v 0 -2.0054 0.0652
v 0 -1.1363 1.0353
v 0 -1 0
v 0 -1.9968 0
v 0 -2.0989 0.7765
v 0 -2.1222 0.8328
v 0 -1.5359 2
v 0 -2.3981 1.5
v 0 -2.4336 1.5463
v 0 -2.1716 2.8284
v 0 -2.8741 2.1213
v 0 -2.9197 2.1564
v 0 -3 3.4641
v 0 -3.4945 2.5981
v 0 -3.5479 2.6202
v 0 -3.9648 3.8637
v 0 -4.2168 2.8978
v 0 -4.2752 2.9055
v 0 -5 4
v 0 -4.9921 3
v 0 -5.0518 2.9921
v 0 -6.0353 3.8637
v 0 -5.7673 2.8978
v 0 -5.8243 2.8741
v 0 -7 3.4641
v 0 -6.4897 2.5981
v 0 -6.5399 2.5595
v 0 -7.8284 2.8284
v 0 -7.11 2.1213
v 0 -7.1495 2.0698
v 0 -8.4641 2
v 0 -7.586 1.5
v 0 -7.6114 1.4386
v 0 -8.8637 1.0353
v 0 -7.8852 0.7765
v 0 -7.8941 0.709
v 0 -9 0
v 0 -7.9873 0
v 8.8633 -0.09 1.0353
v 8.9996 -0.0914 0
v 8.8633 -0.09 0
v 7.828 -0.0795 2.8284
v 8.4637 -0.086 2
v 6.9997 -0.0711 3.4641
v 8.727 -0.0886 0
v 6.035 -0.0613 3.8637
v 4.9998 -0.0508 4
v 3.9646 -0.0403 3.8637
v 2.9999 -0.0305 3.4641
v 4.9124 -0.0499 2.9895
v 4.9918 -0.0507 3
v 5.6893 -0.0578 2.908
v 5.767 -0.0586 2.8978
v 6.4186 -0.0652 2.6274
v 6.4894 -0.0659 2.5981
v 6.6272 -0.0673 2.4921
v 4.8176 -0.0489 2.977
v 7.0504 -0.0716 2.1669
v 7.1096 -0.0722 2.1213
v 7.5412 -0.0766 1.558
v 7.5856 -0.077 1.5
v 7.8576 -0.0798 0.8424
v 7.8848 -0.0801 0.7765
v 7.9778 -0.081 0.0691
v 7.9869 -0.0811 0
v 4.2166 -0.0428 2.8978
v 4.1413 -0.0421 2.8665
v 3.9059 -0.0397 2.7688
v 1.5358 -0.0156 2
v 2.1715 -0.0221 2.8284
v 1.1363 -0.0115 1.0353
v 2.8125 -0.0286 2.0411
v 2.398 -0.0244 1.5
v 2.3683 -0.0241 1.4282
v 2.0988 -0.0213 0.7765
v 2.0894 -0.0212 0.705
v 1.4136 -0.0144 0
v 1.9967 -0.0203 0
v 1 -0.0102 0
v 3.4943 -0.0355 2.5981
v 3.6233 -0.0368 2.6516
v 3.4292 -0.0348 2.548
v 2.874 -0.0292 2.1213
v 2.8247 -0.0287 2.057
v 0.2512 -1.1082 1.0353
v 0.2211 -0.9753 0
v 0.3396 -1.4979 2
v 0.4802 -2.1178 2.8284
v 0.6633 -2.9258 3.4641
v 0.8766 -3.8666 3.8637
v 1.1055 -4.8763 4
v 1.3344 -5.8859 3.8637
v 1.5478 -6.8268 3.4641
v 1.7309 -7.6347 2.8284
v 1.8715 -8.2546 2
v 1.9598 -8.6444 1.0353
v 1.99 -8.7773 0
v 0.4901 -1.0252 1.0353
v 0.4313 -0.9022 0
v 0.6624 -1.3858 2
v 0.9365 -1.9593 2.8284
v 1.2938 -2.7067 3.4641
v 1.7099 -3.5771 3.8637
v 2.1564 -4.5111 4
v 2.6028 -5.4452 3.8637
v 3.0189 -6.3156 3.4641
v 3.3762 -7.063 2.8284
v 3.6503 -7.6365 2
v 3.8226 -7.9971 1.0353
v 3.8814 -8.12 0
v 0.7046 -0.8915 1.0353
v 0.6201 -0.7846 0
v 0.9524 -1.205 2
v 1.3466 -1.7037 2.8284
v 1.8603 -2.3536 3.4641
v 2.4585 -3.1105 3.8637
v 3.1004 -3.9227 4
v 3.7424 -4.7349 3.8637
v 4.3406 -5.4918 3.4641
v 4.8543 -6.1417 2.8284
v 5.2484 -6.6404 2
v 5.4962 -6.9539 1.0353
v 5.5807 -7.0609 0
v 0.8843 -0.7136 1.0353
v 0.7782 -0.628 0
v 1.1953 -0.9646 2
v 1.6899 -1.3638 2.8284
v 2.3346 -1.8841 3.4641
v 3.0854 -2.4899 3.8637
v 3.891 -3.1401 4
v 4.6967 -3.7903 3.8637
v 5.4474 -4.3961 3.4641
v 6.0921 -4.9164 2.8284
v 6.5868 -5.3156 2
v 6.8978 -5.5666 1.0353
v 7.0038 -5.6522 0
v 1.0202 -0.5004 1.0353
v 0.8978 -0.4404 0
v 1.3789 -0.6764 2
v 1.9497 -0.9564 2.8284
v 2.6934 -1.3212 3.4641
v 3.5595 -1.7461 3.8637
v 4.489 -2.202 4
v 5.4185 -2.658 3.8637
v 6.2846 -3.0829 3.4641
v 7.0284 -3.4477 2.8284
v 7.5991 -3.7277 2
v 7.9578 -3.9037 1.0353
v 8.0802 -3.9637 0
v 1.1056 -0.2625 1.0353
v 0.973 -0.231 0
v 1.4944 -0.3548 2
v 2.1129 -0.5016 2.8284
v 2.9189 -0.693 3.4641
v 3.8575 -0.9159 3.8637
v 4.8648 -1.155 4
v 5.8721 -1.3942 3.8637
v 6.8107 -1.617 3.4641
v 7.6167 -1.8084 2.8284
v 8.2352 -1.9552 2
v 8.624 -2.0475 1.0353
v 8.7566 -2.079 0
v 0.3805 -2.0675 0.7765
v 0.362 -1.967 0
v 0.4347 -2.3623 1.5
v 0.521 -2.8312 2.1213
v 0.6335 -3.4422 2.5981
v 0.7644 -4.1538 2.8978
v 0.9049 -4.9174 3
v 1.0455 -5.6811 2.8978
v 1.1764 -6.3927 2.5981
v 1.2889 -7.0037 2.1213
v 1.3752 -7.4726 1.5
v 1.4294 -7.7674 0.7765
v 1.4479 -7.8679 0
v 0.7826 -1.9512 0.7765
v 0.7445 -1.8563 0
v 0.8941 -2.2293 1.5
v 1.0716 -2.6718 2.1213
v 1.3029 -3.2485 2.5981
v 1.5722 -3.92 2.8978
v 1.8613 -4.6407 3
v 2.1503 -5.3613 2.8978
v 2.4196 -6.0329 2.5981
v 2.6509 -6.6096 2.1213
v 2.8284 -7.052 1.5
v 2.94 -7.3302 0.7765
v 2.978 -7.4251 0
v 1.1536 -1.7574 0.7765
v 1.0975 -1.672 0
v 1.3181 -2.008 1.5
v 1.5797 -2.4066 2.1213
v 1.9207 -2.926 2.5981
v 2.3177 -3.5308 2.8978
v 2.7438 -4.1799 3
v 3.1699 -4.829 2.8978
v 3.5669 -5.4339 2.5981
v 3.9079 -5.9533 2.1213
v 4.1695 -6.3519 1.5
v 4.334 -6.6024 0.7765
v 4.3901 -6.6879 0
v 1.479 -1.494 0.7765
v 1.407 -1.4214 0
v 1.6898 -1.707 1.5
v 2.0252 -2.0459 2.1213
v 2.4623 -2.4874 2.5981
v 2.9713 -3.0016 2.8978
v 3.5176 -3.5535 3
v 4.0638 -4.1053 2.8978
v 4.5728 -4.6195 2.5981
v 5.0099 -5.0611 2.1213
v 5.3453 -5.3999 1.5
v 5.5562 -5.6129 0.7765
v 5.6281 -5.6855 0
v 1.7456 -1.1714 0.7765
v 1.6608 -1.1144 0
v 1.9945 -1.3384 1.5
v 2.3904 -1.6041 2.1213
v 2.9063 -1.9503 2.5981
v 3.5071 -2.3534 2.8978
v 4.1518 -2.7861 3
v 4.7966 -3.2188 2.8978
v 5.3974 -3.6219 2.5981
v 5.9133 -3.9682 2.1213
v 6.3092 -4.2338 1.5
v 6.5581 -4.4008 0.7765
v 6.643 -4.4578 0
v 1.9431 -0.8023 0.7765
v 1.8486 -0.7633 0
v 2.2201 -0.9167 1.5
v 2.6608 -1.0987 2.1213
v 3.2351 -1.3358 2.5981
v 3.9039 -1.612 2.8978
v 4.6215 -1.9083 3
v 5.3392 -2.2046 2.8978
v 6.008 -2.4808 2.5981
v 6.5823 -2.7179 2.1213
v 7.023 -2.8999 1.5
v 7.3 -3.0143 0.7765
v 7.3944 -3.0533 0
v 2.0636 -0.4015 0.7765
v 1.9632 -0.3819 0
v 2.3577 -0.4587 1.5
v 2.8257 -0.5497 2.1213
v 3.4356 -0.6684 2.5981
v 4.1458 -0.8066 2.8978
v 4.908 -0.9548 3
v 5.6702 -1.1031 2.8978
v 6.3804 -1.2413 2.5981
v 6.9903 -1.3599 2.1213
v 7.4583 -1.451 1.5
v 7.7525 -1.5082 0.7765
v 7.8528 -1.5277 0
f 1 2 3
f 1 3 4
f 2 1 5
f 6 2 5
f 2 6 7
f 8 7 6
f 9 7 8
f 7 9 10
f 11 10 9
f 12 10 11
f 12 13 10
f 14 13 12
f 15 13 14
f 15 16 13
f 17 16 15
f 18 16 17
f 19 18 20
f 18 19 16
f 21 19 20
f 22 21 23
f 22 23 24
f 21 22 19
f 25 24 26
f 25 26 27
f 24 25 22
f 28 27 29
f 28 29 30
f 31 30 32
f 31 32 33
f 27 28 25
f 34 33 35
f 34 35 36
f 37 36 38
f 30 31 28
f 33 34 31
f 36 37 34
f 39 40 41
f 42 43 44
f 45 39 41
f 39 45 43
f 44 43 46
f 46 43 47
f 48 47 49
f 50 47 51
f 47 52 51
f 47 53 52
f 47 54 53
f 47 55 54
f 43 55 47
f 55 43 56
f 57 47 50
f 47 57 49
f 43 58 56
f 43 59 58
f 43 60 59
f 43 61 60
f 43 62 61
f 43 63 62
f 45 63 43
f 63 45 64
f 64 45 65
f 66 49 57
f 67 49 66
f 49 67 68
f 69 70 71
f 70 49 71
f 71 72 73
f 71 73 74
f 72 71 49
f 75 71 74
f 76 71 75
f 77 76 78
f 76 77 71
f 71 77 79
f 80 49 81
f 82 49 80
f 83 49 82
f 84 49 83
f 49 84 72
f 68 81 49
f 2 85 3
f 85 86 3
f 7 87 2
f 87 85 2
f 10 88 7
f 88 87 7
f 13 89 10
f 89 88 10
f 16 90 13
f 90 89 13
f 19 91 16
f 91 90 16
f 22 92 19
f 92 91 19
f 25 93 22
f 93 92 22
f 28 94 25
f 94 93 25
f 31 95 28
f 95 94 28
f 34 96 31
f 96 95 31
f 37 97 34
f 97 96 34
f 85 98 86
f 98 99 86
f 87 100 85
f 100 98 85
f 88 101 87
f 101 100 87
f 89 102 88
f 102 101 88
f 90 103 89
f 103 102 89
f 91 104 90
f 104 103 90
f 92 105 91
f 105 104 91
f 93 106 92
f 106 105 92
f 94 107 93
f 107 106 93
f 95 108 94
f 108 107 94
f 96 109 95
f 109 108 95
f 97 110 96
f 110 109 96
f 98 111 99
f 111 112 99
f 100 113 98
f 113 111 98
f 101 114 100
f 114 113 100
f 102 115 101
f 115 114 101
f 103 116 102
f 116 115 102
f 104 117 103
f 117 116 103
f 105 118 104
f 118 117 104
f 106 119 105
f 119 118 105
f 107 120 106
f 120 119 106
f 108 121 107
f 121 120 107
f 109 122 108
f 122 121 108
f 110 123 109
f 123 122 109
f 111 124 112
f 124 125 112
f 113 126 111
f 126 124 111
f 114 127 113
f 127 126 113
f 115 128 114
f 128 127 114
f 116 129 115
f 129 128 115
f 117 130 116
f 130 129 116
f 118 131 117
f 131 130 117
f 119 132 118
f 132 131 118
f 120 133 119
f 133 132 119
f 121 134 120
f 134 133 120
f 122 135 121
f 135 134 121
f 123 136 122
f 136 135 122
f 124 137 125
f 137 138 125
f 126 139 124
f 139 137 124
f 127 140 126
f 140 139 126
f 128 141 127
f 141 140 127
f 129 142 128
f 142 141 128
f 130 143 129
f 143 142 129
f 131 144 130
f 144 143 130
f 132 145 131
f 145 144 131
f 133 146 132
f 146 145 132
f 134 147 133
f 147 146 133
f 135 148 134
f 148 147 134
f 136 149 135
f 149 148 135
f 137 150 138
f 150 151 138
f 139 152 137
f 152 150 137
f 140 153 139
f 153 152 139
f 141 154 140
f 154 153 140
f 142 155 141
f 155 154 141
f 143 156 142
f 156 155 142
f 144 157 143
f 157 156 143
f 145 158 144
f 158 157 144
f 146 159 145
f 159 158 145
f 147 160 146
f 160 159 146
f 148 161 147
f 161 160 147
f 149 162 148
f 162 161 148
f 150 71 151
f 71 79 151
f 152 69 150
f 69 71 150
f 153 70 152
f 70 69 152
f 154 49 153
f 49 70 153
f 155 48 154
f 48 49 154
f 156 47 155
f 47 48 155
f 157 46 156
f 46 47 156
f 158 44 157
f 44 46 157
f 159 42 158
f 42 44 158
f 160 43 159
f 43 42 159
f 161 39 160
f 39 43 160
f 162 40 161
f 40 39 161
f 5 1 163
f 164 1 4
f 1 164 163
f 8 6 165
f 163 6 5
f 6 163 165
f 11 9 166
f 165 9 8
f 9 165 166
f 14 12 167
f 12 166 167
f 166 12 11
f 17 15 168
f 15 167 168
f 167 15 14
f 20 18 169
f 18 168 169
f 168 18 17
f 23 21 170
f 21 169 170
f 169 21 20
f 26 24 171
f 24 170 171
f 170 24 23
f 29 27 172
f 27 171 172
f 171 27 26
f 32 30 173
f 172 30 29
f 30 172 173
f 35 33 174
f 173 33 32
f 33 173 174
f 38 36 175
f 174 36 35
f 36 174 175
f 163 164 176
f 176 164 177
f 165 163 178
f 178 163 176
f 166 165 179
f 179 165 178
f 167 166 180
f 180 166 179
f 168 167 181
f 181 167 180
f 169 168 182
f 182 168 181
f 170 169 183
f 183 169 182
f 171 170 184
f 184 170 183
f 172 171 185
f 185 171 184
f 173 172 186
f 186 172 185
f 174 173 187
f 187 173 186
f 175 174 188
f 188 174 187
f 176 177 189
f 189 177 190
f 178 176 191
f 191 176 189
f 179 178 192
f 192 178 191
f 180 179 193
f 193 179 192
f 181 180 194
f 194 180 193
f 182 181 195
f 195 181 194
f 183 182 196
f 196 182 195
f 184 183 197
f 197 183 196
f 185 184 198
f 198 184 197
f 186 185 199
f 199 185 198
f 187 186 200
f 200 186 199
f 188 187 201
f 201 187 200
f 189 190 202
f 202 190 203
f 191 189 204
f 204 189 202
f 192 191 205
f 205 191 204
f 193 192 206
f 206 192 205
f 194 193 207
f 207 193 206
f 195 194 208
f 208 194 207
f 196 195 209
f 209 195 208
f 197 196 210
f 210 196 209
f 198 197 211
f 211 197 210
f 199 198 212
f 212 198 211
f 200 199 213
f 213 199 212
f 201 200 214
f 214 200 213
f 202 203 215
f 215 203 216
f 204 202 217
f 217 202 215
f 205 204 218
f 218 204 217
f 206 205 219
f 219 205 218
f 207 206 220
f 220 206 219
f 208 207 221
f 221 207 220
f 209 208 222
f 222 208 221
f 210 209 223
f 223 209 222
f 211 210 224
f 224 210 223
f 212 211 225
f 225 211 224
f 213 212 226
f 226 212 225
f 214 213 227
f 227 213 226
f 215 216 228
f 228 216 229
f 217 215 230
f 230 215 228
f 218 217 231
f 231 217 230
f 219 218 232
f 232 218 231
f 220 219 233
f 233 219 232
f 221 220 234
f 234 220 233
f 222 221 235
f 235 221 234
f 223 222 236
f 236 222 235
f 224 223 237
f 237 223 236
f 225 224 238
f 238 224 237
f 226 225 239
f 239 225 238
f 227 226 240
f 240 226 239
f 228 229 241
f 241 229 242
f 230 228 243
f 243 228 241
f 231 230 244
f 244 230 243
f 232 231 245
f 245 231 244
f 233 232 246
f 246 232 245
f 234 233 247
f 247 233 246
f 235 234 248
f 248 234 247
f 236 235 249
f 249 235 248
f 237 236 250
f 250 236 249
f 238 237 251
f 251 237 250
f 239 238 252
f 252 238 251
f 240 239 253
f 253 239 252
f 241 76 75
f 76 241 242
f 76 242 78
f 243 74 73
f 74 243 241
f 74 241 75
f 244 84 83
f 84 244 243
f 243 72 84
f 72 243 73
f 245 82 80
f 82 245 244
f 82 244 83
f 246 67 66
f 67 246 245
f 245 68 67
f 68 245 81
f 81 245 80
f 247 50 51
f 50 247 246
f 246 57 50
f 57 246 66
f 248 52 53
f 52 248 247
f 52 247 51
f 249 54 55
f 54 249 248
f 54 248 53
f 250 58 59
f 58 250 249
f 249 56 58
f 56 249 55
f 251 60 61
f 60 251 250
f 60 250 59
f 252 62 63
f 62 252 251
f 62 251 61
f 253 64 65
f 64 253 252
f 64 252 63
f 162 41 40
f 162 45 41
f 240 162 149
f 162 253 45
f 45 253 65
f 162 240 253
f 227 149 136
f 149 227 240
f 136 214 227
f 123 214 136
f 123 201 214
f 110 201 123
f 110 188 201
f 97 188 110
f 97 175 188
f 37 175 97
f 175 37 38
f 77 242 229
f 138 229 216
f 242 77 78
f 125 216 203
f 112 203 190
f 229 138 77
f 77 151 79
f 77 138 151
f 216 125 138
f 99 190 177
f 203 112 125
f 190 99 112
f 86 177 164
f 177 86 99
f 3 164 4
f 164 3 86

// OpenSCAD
// file: ../build_environments.scad
// build_environments.scad: modules to build level sections
//

module pool(diameter=10.0, wall_height=2.0, step_width=3.0, connections=[])
{
    difference() {
        union() {
        difference() {
            cylinder(h=0.5,r1=diameter+step_width,r2=diameter+step_width,$fn=48);
            translate([0,0,-0.1])
                cylinder(h=0.7,r1=diameter,r2=diameter,$fn=48);
        }
        difference() {
            cylinder(h=wall_height,r1=diameter+step_width+1.0,r2=diameter+step_width+1.0,$fn=48);
            translate([0,0,-0.1])
                cylinder(h=wall_height+0.2,r1=diameter+step_width,r2=diameter+step_width,$fn=48);
        }
        }
    
        for (c = connections)
        {
            rotate([0,90,0]) {
                angle = atan2(c[1],c[0]);
                rotate([-angle,0,0]) {
                    cylinder(h=diameter+5.0,r1=c[2],r2=c[2],$fn=48);
                }
            }
        }
    }
}

module straight(length=10.0, width=2.0, dy1=0.0, dy2=0.0, dz=0.0)
{
    dims = [0, 0, 0, 0, 0, (dz/length)];
    matrix = [
        [ 1, dims[0], dims[1], 0 ],
        [ dims[2], 1, dims[4], 0 ],
        [ dims[5], dims[3], 1, 0 ],
        [ 0, 0, 0, 1 ]
    ];
    multmatrix(matrix)
    difference() {
        translate([dy1,0,0])
        union() {
            rotate([0,90,0]) {
                difference() {
                    cylinder(h=(length-dy1-dy2),r1=width+1.0,r2=width+1.0,$fn=24);
                    translate([0,0,-0.1])
                        cylinder(h=(length-dy1-dy2+0.2),r1=width,r2=width,$fn=24);
                }
                difference() {
                    cylinder(h=1.0,r1=width+2.0,r2=width+2.0,$fn=24);
                    translate([0,0,-0.1])
                        cylinder(h=1.2,r1=width,r2=width,$fn=24);
                }
                translate([0,0,(length-dy1-dy2)-1.0]) {
                    difference() {
                        cylinder(h=1.0,r1=width+2.0,r2=width+2.0,$fn=24);
                        translate([0,0,-0.1])
                            cylinder(h=1.2,r1=width,r2=width,$fn=24);
                    }
                }
            }
        }
        translate([0,0,-(2*width+4.0)/2])
            cube([3*length,3*length,2*width+4.0],center=true);
    }
}

module curve(p0=[0,0], center=[0,0], dir=1, angle=0.0, width=2.0)
{
    radius = sqrt((p0[0]-center[0])*(p0[0]-center[0]) + (p0[1]-center[1])*(p0[1]-center[1]));
    if (dir == 0) {
        difference() {
            rotate([0,0,-90])
            difference() {
                rotate_extrude(angle = angle, convexity = 10, $fn=32)
                    translate([radius, 0, 0])
                        circle(r = width+1.0,$fn=24);
                rotate([0,0,-1.0])
                    rotate_extrude(angle = angle+2.0, convexity = 10, $fn=32)
                        translate([radius, 0, 0])
                            circle(r = width,$fn=24);
            }
            translate([0,0,-(2*width+4.0)/2])
                cube([5*radius,5*radius,2*width+4.0],center=true);
        }
    }
    else {
        difference() {
            rotate([0,0,90])
            difference() {
                rotate_extrude(angle = -angle, convexity = 10, $fn=32)
                    translate([radius, 0, 0])
                        circle(r = width+1.0,$fn=24);
                rotate([0,0,1.0])
                    rotate_extrude(angle = -angle-2.0, convexity = 10, $fn=32)
                        translate([radius, 0, 0])
                            circle(r = width,$fn=24);
            }
            translate([0,0,-(2*width+4.0)/2])
                cube([5*radius,5*radius,2*width+4.0],center=true);
        }
    }

}

// test pool
//pool(diameter=12.0000, wall_height=3.0000, step_width=3.0000, connections=[[0.0000,-26.0000,2.0000], [23.6074,0.0000,2.0000]]);

// test straight, slope
//straight(length=26.0000, width=2.0000, dy1=11.8322, dy2=6.7082, dz=0.0000);
//straight(length=29.1549, width=12.0000, dy1=0.0000, dy2=0.0000, dz=-15.0000);

// test curve
//curve(p0=[23.6074, 0.0000], center=[23.6074, 5.0000], dir=0, angle=60.1011, width=2.0000);
//curve(p0=[33.6426, 12.4219], center=[37.9771, 9.9295], dir=1, angle=120.4627, width=2.0000);
// main file
use <../build_environments.scad>;
curve(p0=[-134.0463, 119.8869], center=[-129.0463, 119.8706], dir=0, angle=89.4181, width=3.0000);
